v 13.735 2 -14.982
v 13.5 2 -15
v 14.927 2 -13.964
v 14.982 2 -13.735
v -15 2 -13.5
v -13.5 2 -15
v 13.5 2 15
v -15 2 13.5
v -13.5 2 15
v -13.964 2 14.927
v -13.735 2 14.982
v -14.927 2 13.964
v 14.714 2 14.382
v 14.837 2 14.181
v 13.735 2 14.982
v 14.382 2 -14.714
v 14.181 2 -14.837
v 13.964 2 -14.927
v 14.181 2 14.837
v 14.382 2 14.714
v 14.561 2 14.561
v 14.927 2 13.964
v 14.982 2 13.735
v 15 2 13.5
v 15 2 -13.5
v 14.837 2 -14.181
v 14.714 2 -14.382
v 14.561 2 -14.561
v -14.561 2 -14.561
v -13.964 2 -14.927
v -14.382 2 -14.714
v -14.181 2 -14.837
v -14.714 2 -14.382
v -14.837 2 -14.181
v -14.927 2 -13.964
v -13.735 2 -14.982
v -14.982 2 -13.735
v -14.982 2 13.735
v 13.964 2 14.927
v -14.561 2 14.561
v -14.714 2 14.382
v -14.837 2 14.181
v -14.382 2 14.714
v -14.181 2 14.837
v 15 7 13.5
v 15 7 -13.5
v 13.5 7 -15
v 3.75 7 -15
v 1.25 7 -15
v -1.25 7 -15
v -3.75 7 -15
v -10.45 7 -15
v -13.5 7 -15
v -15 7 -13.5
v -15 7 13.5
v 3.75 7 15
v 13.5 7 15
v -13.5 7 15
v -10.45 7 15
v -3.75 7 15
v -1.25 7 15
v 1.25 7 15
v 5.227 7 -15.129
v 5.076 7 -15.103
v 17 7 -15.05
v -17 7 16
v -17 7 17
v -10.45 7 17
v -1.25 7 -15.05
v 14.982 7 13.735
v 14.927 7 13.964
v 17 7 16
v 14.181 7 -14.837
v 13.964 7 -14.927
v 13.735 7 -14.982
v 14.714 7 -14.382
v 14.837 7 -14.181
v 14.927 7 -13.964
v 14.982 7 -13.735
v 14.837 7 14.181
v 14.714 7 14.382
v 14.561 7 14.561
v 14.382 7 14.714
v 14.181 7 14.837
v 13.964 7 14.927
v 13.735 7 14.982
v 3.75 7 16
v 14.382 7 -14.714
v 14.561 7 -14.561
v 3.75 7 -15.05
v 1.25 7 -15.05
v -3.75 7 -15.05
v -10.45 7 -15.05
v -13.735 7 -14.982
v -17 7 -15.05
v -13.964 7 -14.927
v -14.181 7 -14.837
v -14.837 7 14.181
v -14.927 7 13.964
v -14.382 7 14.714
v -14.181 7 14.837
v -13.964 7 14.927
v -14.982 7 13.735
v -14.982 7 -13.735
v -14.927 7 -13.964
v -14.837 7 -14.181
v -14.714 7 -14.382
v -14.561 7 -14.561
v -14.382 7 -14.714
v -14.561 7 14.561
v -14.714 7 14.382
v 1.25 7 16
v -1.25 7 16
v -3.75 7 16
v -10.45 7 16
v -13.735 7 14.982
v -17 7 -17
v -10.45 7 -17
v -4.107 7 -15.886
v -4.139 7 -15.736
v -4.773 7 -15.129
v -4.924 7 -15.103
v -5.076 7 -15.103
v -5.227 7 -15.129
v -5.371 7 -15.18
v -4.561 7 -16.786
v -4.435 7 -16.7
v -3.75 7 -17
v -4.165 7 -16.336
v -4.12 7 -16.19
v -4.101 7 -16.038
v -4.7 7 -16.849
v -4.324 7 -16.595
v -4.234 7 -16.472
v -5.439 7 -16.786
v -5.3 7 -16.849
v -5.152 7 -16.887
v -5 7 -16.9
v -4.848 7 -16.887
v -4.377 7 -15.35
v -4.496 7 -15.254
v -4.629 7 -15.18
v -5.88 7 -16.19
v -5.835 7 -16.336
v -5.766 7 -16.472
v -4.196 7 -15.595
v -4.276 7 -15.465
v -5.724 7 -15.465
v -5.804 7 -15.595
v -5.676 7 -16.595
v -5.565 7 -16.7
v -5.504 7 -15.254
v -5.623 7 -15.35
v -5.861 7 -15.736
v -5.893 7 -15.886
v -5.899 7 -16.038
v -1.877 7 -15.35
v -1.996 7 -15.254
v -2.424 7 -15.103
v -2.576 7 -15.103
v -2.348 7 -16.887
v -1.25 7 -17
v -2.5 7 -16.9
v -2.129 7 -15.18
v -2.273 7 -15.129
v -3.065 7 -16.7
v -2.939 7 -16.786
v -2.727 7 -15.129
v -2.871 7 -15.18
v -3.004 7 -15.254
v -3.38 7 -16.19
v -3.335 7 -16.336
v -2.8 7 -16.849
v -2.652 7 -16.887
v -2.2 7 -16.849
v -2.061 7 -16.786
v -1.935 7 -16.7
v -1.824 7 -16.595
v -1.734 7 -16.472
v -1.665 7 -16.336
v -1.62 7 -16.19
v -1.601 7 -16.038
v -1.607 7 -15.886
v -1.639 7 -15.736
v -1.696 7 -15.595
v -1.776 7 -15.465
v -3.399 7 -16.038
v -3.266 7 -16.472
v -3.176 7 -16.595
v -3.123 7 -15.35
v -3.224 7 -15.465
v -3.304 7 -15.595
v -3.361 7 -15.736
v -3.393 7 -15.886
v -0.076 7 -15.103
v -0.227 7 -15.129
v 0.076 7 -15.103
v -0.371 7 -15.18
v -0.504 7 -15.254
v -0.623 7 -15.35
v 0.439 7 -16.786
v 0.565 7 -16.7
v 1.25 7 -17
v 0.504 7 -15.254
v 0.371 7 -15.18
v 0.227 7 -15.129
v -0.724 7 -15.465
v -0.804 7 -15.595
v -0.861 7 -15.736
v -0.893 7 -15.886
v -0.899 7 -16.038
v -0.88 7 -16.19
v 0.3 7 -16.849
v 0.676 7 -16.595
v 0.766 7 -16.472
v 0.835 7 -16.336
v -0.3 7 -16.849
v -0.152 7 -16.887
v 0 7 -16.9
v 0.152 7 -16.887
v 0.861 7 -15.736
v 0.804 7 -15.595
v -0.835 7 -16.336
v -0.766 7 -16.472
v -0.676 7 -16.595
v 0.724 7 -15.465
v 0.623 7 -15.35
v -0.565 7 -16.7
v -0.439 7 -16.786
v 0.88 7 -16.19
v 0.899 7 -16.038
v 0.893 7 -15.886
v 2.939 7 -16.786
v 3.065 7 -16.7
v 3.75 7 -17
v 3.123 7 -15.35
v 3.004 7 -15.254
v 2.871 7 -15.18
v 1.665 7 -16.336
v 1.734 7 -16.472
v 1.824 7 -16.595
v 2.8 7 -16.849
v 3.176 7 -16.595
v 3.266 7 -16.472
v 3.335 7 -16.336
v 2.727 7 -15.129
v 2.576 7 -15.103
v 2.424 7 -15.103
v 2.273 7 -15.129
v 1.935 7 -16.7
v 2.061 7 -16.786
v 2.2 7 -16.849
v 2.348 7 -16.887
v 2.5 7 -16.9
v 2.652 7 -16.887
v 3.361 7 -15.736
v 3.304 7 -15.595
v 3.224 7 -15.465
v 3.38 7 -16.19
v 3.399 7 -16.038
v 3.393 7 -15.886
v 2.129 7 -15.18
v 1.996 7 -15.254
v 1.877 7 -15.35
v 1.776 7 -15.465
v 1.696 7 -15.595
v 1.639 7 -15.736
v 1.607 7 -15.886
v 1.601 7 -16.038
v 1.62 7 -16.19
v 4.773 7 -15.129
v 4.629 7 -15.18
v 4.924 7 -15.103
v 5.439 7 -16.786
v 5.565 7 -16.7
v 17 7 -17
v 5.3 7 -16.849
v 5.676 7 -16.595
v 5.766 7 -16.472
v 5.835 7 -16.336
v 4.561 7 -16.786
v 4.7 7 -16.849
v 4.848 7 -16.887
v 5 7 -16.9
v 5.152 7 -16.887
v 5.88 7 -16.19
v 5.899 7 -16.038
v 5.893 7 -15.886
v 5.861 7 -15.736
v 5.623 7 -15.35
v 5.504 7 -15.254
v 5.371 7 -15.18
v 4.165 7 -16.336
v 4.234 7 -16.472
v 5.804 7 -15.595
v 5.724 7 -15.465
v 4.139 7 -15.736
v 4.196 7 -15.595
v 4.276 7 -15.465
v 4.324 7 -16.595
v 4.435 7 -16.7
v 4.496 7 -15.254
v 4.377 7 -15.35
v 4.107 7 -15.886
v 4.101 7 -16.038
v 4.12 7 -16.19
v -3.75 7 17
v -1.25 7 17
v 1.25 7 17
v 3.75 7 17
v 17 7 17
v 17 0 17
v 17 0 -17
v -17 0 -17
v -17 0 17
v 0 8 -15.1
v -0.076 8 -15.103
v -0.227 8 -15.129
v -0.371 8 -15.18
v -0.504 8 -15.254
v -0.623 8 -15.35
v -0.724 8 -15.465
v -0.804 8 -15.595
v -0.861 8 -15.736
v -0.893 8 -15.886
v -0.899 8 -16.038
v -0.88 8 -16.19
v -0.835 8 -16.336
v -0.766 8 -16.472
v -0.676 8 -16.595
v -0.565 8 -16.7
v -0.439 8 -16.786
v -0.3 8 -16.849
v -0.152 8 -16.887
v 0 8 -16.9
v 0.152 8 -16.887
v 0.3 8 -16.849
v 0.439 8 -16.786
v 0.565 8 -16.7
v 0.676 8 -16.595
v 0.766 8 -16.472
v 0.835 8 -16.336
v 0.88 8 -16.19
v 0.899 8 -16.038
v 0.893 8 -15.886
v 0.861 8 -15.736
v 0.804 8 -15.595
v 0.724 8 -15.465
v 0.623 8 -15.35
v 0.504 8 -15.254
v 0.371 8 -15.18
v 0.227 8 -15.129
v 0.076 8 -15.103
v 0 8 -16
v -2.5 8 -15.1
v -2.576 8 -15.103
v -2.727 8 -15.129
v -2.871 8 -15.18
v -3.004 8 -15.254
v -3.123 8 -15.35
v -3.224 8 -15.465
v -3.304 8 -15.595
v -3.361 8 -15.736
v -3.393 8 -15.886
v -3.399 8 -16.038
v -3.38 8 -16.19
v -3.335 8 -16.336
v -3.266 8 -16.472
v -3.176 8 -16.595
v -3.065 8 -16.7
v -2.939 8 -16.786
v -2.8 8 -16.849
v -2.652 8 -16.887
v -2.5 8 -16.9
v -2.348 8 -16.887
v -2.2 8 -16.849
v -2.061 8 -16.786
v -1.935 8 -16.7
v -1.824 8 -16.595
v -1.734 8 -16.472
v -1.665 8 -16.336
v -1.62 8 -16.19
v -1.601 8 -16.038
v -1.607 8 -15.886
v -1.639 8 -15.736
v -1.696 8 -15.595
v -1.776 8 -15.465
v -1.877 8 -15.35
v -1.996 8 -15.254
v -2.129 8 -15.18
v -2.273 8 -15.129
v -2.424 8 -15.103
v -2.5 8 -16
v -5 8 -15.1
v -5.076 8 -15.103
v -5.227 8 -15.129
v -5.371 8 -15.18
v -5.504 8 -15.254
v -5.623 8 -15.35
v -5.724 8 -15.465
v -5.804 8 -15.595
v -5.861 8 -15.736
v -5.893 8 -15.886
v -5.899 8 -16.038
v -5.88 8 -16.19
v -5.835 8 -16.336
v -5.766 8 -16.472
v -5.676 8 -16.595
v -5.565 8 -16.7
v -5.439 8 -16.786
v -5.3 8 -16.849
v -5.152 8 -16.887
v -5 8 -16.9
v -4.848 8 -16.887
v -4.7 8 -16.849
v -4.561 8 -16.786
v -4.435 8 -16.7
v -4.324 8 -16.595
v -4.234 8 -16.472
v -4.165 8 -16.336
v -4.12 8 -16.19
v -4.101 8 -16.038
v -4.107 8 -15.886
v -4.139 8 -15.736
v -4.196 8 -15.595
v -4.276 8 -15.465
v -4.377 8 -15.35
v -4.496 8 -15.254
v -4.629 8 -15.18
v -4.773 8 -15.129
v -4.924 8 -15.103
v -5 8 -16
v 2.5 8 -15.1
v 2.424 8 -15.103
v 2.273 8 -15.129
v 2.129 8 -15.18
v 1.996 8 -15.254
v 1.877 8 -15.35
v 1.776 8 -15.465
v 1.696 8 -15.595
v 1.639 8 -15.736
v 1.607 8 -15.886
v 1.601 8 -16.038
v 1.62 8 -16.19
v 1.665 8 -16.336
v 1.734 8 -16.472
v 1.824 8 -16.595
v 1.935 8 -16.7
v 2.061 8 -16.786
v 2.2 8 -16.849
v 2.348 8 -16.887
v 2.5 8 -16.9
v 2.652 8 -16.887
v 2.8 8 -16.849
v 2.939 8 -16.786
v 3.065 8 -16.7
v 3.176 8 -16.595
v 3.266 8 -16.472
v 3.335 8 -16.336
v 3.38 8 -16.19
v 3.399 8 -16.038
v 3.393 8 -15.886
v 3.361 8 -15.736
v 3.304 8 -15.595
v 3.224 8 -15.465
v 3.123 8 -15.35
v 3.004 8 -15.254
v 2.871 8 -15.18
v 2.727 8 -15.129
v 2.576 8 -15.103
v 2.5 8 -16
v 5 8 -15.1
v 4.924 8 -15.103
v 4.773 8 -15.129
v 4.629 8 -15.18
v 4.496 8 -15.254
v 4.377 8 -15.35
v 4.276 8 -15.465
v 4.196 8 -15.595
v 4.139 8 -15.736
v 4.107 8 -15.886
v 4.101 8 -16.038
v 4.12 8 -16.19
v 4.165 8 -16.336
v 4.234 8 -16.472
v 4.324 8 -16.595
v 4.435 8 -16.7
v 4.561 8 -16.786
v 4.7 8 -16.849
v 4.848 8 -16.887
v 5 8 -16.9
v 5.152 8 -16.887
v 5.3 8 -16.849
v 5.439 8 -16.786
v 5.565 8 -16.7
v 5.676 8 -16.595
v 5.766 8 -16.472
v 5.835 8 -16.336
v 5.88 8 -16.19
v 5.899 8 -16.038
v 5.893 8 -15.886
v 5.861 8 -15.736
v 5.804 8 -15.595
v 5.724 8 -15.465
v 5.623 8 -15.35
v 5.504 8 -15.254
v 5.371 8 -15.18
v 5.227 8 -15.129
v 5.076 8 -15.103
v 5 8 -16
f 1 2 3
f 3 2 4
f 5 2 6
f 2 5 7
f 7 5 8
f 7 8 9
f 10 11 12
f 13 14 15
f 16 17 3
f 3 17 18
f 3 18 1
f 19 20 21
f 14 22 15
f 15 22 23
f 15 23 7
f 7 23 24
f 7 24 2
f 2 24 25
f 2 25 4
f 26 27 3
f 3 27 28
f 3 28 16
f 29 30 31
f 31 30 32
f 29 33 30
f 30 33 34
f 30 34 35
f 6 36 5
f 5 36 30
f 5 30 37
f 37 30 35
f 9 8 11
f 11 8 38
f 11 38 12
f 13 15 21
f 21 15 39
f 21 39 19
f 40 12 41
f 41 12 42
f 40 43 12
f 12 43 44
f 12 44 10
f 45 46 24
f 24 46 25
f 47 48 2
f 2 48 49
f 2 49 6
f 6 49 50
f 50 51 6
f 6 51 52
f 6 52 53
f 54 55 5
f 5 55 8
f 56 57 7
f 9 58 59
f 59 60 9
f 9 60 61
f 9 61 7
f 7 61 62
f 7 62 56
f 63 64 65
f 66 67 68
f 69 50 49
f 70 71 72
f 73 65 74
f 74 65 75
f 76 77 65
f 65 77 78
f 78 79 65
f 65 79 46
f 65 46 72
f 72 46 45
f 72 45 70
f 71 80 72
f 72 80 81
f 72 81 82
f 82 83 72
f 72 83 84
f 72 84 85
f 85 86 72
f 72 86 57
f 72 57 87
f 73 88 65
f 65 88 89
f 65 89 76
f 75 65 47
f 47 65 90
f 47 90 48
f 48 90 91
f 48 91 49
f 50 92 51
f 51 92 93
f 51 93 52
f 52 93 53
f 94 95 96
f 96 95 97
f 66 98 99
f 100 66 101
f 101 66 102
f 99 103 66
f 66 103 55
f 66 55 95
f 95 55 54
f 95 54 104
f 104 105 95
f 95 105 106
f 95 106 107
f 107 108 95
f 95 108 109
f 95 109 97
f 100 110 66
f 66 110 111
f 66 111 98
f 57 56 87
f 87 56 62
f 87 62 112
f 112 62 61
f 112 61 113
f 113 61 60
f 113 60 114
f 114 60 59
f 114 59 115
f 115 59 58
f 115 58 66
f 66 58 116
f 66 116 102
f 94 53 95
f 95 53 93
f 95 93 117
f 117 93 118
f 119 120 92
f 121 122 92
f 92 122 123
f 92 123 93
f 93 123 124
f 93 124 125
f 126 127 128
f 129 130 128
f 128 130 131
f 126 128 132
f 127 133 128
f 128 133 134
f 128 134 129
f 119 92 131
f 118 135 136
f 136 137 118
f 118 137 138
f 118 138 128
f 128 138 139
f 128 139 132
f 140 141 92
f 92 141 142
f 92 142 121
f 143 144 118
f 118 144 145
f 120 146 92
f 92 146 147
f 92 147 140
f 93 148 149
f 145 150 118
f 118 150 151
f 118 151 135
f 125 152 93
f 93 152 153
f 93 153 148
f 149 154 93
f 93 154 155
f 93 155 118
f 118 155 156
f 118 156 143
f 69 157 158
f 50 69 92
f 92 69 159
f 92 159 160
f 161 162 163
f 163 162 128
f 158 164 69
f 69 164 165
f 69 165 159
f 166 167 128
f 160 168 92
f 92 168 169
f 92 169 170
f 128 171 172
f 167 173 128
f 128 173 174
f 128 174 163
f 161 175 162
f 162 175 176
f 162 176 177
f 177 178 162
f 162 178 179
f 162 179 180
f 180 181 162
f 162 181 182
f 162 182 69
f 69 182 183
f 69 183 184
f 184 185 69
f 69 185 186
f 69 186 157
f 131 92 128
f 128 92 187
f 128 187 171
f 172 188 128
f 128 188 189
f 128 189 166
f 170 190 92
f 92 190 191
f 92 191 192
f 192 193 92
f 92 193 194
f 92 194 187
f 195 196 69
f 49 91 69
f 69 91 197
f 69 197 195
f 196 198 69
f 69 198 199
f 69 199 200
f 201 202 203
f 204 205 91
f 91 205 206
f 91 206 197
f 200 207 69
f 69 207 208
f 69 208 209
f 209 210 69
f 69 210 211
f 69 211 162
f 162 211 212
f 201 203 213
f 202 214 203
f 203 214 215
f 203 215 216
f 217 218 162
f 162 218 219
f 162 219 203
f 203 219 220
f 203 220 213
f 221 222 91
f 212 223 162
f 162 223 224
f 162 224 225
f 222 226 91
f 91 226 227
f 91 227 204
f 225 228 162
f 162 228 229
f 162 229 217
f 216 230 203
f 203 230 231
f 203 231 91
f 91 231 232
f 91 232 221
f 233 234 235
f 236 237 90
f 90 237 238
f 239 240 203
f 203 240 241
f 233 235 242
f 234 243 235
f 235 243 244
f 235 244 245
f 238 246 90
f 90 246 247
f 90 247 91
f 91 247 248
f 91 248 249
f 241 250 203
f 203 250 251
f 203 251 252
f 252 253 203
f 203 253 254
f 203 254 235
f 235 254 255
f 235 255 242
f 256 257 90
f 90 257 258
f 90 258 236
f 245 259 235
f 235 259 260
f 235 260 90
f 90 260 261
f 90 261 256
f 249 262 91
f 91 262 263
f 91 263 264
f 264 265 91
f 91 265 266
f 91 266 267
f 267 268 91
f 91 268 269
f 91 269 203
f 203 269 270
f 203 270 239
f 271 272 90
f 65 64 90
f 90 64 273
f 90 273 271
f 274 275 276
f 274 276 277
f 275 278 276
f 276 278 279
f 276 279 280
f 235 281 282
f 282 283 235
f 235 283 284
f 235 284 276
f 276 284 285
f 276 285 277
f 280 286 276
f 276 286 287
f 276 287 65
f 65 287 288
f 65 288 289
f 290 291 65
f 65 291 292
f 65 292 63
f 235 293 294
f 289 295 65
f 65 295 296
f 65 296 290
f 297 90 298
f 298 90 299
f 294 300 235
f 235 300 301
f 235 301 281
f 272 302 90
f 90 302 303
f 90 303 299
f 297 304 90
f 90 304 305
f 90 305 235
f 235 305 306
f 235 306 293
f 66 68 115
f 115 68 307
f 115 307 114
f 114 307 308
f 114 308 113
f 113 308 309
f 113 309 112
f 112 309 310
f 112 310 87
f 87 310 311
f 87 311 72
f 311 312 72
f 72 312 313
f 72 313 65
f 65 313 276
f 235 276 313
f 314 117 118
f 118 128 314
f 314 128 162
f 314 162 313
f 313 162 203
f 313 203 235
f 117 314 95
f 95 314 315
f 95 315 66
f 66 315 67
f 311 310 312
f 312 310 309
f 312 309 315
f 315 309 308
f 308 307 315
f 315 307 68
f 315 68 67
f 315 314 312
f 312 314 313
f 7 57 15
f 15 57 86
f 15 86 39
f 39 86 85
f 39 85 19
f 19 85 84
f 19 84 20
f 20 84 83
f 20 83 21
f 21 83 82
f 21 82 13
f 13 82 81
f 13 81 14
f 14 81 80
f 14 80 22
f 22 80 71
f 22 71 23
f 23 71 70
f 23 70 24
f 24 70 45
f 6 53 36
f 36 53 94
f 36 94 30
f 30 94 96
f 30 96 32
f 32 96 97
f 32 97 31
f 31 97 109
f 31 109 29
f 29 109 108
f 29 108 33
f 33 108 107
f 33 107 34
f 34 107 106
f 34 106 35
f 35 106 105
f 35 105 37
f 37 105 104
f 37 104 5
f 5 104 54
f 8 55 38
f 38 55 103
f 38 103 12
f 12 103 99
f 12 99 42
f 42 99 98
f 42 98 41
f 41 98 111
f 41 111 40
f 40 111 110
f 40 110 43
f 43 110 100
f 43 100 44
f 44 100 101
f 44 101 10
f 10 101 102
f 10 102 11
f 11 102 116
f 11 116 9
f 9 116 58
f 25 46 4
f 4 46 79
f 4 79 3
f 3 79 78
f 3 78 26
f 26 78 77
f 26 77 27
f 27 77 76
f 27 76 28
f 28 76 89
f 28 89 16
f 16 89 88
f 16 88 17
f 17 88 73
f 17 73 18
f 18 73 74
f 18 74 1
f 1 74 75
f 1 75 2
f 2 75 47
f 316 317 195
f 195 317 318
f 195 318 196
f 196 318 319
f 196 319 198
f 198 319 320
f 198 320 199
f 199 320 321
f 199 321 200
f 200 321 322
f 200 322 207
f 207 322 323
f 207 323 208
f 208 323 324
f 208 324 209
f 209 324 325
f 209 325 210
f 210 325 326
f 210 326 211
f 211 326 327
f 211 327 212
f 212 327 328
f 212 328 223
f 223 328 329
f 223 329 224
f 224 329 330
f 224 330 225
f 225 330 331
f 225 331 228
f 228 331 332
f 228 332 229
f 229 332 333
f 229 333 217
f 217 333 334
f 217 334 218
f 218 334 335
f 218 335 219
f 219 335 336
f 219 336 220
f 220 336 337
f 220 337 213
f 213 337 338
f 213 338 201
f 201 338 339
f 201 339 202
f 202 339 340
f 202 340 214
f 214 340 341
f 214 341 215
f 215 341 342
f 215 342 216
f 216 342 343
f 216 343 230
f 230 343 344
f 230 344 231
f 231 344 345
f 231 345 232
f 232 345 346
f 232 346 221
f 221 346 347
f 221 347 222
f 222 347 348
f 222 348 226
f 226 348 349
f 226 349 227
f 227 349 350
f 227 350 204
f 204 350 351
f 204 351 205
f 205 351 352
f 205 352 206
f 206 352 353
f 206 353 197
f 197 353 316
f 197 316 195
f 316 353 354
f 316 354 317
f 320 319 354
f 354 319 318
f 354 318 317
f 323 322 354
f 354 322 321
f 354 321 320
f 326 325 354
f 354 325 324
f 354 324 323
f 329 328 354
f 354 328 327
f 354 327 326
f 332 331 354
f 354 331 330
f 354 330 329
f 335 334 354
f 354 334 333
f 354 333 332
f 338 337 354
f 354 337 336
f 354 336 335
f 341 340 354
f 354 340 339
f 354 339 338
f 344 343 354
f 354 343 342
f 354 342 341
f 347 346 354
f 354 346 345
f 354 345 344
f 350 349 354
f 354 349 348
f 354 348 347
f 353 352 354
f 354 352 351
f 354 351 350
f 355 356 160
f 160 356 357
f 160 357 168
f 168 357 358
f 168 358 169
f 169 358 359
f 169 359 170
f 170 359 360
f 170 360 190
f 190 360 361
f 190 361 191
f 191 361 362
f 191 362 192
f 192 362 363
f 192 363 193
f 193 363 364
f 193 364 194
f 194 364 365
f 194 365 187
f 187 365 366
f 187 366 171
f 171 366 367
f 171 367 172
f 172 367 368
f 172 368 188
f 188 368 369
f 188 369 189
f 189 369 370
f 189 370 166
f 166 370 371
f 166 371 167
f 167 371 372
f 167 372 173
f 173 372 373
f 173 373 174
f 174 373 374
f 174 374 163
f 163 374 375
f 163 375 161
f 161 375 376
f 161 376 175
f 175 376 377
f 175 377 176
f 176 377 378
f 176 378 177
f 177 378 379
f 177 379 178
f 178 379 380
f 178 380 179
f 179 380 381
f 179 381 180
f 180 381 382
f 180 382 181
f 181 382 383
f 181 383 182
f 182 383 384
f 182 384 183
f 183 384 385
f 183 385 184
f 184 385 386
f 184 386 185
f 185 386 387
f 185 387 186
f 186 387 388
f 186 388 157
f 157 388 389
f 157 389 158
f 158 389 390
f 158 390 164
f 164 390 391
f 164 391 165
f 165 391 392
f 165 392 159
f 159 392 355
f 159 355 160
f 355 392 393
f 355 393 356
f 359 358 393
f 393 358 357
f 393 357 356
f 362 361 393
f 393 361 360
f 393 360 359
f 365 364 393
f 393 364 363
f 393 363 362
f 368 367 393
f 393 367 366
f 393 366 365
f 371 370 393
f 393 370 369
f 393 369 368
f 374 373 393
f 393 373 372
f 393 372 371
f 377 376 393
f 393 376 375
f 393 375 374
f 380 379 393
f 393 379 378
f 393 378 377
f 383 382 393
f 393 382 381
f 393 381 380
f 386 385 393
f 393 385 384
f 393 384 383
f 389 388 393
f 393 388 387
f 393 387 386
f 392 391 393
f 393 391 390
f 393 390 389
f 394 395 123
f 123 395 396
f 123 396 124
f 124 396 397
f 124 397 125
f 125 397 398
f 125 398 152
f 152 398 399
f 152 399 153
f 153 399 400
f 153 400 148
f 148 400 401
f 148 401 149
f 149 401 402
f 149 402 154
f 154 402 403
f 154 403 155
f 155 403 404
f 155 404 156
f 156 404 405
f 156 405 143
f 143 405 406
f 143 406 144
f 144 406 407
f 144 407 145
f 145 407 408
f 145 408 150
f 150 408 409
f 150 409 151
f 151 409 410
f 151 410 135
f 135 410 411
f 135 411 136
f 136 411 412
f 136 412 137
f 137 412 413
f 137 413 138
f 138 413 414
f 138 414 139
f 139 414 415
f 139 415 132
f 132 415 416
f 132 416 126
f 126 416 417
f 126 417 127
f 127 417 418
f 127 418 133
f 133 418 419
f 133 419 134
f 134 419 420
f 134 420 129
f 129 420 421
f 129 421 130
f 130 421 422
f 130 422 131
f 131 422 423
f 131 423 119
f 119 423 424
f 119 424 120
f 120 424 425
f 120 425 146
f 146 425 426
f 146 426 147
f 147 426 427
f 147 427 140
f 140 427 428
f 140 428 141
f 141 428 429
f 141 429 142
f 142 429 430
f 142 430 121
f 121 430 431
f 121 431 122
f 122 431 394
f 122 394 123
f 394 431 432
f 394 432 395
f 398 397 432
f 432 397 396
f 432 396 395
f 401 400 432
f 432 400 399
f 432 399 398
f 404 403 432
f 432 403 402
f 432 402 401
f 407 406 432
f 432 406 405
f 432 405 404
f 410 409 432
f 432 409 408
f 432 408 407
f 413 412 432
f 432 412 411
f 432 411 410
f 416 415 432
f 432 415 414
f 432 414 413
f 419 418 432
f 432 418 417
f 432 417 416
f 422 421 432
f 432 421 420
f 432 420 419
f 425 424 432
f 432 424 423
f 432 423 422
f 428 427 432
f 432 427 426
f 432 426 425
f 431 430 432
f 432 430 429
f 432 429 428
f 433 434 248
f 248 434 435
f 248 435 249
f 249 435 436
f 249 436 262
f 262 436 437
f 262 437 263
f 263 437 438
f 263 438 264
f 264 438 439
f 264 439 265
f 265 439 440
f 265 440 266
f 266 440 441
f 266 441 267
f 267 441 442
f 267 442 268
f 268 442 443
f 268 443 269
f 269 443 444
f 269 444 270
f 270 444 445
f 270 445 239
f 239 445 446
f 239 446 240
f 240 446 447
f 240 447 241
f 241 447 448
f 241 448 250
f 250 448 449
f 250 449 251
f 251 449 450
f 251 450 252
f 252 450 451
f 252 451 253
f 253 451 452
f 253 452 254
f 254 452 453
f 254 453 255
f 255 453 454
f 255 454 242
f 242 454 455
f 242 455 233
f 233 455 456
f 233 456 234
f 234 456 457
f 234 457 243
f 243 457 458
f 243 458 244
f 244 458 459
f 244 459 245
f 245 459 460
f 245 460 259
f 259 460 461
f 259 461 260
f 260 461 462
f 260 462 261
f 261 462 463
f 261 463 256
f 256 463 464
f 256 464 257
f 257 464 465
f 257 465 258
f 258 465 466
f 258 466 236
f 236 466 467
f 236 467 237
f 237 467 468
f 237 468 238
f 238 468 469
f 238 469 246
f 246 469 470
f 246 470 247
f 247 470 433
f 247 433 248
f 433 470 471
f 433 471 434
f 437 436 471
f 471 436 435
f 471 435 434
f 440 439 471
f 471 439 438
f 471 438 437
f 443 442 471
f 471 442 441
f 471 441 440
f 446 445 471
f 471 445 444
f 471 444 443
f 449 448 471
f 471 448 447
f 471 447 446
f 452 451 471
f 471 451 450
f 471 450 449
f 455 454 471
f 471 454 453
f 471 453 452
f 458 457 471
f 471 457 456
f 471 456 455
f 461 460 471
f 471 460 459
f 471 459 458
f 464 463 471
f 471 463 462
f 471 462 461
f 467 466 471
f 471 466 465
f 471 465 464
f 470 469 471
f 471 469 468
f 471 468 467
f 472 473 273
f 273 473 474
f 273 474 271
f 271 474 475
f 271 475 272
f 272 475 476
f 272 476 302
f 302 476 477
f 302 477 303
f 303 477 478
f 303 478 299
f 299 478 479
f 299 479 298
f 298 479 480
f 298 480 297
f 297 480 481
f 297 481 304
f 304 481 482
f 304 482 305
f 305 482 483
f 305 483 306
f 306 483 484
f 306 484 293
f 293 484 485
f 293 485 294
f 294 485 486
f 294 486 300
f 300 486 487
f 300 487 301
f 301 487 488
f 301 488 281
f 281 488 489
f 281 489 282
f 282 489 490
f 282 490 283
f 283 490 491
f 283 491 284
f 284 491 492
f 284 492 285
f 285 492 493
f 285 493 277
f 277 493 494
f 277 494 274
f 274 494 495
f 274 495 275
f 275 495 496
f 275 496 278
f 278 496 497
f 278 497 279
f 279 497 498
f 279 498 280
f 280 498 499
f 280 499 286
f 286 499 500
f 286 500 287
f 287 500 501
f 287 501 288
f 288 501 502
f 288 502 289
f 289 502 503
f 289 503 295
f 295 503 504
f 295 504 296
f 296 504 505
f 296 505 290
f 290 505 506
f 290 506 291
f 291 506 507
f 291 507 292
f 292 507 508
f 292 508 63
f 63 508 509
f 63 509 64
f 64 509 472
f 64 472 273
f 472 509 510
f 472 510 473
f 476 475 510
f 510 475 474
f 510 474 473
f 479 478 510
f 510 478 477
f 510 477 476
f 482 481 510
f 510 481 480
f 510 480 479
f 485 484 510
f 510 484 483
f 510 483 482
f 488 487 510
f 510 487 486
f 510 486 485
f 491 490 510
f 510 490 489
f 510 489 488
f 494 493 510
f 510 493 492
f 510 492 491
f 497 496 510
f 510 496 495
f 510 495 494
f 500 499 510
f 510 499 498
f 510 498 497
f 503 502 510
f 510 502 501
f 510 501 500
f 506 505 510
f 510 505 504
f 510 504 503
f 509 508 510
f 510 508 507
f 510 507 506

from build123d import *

# Parameters (mm, degrees)
SKETCH1_W           = 30
SKETCH1_H           = 30
BOSS_EXTRUDE2_DEPTH = 2
SKETCH1_6_W         = 34
SKETCH1_6_H         = 34
SKETCH1_6_W_2       = 30
SKETCH1_6_H_2       = 30
BOSS_EXTRUDE3_DEPTH = 7
FILLET1_R           = 1.5
SKETCH2_R           = 0.9
BOSS_EXTRUDE4_DEPTH = 1


with BuildPart() as part:
    # Sketch1 → Boss-Extrude2 (new body)
    with BuildSketch(Plane(origin=(0, 0, 0), x_dir=(1, 0, 0), z_dir=(0, 1, 0))):
        Rectangle(SKETCH1_W, SKETCH1_H)
    extrude(amount=BOSS_EXTRUDE2_DEPTH)

    # Sketch1<6> → Boss-Extrude3 (add)
    with BuildSketch(Plane(origin=(0, 0, 0), x_dir=(1, 0, 0), z_dir=(0, 1, 0))):
        Rectangle(SKETCH1_6_W, SKETCH1_6_H)
        Rectangle(SKETCH1_6_W_2, SKETCH1_6_H_2, mode=Mode.SUBTRACT)
    extrude(amount=BOSS_EXTRUDE3_DEPTH)

    # Fillet1
    fillet1_edges = [part.edges().sort_by_distance(p)[0] for p in [
        (15, 4.5, -15),
        (-15, 4.5, -15),
        (-15, 4.5, 15),
        (15, 4.5, 15),
    ]]
    fillet(fillet1_edges, radius=FILLET1_R)

    # Sketch2 → Boss-Extrude4 (add)
    with BuildSketch(Plane(origin=(0, 7, 0), x_dir=(1, 0, 0), z_dir=(0, 1, 0))):
        with Locations((0, 16)):
            Circle(SKETCH2_R)
        with Locations((-2.5, 16)):
            Circle(SKETCH2_R)
        with Locations((-5, 16)):
            Circle(SKETCH2_R)
        with Locations((2.5, 16)):
            Circle(SKETCH2_R)
        with Locations((5, 16)):
            Circle(SKETCH2_R)
    extrude(amount=BOSS_EXTRUDE4_DEPTH)


solid = part.part
